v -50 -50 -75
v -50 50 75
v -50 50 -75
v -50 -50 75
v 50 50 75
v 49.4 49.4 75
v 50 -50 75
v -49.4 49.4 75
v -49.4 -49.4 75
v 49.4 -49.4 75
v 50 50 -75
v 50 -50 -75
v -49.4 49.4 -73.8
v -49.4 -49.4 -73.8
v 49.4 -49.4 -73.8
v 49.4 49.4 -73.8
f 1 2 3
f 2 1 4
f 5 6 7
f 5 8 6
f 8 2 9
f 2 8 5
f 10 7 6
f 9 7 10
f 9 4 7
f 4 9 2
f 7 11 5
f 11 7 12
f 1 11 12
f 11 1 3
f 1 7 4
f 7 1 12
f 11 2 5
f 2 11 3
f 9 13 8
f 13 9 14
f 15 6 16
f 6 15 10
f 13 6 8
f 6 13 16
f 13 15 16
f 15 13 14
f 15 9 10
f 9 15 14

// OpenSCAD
difference() {
    cube(size = [100, 100, 150], center = true);
    translate([0,0,1.2]) {
        cube(size = [98.8, 98.8, 150], center = true);
    }
}
